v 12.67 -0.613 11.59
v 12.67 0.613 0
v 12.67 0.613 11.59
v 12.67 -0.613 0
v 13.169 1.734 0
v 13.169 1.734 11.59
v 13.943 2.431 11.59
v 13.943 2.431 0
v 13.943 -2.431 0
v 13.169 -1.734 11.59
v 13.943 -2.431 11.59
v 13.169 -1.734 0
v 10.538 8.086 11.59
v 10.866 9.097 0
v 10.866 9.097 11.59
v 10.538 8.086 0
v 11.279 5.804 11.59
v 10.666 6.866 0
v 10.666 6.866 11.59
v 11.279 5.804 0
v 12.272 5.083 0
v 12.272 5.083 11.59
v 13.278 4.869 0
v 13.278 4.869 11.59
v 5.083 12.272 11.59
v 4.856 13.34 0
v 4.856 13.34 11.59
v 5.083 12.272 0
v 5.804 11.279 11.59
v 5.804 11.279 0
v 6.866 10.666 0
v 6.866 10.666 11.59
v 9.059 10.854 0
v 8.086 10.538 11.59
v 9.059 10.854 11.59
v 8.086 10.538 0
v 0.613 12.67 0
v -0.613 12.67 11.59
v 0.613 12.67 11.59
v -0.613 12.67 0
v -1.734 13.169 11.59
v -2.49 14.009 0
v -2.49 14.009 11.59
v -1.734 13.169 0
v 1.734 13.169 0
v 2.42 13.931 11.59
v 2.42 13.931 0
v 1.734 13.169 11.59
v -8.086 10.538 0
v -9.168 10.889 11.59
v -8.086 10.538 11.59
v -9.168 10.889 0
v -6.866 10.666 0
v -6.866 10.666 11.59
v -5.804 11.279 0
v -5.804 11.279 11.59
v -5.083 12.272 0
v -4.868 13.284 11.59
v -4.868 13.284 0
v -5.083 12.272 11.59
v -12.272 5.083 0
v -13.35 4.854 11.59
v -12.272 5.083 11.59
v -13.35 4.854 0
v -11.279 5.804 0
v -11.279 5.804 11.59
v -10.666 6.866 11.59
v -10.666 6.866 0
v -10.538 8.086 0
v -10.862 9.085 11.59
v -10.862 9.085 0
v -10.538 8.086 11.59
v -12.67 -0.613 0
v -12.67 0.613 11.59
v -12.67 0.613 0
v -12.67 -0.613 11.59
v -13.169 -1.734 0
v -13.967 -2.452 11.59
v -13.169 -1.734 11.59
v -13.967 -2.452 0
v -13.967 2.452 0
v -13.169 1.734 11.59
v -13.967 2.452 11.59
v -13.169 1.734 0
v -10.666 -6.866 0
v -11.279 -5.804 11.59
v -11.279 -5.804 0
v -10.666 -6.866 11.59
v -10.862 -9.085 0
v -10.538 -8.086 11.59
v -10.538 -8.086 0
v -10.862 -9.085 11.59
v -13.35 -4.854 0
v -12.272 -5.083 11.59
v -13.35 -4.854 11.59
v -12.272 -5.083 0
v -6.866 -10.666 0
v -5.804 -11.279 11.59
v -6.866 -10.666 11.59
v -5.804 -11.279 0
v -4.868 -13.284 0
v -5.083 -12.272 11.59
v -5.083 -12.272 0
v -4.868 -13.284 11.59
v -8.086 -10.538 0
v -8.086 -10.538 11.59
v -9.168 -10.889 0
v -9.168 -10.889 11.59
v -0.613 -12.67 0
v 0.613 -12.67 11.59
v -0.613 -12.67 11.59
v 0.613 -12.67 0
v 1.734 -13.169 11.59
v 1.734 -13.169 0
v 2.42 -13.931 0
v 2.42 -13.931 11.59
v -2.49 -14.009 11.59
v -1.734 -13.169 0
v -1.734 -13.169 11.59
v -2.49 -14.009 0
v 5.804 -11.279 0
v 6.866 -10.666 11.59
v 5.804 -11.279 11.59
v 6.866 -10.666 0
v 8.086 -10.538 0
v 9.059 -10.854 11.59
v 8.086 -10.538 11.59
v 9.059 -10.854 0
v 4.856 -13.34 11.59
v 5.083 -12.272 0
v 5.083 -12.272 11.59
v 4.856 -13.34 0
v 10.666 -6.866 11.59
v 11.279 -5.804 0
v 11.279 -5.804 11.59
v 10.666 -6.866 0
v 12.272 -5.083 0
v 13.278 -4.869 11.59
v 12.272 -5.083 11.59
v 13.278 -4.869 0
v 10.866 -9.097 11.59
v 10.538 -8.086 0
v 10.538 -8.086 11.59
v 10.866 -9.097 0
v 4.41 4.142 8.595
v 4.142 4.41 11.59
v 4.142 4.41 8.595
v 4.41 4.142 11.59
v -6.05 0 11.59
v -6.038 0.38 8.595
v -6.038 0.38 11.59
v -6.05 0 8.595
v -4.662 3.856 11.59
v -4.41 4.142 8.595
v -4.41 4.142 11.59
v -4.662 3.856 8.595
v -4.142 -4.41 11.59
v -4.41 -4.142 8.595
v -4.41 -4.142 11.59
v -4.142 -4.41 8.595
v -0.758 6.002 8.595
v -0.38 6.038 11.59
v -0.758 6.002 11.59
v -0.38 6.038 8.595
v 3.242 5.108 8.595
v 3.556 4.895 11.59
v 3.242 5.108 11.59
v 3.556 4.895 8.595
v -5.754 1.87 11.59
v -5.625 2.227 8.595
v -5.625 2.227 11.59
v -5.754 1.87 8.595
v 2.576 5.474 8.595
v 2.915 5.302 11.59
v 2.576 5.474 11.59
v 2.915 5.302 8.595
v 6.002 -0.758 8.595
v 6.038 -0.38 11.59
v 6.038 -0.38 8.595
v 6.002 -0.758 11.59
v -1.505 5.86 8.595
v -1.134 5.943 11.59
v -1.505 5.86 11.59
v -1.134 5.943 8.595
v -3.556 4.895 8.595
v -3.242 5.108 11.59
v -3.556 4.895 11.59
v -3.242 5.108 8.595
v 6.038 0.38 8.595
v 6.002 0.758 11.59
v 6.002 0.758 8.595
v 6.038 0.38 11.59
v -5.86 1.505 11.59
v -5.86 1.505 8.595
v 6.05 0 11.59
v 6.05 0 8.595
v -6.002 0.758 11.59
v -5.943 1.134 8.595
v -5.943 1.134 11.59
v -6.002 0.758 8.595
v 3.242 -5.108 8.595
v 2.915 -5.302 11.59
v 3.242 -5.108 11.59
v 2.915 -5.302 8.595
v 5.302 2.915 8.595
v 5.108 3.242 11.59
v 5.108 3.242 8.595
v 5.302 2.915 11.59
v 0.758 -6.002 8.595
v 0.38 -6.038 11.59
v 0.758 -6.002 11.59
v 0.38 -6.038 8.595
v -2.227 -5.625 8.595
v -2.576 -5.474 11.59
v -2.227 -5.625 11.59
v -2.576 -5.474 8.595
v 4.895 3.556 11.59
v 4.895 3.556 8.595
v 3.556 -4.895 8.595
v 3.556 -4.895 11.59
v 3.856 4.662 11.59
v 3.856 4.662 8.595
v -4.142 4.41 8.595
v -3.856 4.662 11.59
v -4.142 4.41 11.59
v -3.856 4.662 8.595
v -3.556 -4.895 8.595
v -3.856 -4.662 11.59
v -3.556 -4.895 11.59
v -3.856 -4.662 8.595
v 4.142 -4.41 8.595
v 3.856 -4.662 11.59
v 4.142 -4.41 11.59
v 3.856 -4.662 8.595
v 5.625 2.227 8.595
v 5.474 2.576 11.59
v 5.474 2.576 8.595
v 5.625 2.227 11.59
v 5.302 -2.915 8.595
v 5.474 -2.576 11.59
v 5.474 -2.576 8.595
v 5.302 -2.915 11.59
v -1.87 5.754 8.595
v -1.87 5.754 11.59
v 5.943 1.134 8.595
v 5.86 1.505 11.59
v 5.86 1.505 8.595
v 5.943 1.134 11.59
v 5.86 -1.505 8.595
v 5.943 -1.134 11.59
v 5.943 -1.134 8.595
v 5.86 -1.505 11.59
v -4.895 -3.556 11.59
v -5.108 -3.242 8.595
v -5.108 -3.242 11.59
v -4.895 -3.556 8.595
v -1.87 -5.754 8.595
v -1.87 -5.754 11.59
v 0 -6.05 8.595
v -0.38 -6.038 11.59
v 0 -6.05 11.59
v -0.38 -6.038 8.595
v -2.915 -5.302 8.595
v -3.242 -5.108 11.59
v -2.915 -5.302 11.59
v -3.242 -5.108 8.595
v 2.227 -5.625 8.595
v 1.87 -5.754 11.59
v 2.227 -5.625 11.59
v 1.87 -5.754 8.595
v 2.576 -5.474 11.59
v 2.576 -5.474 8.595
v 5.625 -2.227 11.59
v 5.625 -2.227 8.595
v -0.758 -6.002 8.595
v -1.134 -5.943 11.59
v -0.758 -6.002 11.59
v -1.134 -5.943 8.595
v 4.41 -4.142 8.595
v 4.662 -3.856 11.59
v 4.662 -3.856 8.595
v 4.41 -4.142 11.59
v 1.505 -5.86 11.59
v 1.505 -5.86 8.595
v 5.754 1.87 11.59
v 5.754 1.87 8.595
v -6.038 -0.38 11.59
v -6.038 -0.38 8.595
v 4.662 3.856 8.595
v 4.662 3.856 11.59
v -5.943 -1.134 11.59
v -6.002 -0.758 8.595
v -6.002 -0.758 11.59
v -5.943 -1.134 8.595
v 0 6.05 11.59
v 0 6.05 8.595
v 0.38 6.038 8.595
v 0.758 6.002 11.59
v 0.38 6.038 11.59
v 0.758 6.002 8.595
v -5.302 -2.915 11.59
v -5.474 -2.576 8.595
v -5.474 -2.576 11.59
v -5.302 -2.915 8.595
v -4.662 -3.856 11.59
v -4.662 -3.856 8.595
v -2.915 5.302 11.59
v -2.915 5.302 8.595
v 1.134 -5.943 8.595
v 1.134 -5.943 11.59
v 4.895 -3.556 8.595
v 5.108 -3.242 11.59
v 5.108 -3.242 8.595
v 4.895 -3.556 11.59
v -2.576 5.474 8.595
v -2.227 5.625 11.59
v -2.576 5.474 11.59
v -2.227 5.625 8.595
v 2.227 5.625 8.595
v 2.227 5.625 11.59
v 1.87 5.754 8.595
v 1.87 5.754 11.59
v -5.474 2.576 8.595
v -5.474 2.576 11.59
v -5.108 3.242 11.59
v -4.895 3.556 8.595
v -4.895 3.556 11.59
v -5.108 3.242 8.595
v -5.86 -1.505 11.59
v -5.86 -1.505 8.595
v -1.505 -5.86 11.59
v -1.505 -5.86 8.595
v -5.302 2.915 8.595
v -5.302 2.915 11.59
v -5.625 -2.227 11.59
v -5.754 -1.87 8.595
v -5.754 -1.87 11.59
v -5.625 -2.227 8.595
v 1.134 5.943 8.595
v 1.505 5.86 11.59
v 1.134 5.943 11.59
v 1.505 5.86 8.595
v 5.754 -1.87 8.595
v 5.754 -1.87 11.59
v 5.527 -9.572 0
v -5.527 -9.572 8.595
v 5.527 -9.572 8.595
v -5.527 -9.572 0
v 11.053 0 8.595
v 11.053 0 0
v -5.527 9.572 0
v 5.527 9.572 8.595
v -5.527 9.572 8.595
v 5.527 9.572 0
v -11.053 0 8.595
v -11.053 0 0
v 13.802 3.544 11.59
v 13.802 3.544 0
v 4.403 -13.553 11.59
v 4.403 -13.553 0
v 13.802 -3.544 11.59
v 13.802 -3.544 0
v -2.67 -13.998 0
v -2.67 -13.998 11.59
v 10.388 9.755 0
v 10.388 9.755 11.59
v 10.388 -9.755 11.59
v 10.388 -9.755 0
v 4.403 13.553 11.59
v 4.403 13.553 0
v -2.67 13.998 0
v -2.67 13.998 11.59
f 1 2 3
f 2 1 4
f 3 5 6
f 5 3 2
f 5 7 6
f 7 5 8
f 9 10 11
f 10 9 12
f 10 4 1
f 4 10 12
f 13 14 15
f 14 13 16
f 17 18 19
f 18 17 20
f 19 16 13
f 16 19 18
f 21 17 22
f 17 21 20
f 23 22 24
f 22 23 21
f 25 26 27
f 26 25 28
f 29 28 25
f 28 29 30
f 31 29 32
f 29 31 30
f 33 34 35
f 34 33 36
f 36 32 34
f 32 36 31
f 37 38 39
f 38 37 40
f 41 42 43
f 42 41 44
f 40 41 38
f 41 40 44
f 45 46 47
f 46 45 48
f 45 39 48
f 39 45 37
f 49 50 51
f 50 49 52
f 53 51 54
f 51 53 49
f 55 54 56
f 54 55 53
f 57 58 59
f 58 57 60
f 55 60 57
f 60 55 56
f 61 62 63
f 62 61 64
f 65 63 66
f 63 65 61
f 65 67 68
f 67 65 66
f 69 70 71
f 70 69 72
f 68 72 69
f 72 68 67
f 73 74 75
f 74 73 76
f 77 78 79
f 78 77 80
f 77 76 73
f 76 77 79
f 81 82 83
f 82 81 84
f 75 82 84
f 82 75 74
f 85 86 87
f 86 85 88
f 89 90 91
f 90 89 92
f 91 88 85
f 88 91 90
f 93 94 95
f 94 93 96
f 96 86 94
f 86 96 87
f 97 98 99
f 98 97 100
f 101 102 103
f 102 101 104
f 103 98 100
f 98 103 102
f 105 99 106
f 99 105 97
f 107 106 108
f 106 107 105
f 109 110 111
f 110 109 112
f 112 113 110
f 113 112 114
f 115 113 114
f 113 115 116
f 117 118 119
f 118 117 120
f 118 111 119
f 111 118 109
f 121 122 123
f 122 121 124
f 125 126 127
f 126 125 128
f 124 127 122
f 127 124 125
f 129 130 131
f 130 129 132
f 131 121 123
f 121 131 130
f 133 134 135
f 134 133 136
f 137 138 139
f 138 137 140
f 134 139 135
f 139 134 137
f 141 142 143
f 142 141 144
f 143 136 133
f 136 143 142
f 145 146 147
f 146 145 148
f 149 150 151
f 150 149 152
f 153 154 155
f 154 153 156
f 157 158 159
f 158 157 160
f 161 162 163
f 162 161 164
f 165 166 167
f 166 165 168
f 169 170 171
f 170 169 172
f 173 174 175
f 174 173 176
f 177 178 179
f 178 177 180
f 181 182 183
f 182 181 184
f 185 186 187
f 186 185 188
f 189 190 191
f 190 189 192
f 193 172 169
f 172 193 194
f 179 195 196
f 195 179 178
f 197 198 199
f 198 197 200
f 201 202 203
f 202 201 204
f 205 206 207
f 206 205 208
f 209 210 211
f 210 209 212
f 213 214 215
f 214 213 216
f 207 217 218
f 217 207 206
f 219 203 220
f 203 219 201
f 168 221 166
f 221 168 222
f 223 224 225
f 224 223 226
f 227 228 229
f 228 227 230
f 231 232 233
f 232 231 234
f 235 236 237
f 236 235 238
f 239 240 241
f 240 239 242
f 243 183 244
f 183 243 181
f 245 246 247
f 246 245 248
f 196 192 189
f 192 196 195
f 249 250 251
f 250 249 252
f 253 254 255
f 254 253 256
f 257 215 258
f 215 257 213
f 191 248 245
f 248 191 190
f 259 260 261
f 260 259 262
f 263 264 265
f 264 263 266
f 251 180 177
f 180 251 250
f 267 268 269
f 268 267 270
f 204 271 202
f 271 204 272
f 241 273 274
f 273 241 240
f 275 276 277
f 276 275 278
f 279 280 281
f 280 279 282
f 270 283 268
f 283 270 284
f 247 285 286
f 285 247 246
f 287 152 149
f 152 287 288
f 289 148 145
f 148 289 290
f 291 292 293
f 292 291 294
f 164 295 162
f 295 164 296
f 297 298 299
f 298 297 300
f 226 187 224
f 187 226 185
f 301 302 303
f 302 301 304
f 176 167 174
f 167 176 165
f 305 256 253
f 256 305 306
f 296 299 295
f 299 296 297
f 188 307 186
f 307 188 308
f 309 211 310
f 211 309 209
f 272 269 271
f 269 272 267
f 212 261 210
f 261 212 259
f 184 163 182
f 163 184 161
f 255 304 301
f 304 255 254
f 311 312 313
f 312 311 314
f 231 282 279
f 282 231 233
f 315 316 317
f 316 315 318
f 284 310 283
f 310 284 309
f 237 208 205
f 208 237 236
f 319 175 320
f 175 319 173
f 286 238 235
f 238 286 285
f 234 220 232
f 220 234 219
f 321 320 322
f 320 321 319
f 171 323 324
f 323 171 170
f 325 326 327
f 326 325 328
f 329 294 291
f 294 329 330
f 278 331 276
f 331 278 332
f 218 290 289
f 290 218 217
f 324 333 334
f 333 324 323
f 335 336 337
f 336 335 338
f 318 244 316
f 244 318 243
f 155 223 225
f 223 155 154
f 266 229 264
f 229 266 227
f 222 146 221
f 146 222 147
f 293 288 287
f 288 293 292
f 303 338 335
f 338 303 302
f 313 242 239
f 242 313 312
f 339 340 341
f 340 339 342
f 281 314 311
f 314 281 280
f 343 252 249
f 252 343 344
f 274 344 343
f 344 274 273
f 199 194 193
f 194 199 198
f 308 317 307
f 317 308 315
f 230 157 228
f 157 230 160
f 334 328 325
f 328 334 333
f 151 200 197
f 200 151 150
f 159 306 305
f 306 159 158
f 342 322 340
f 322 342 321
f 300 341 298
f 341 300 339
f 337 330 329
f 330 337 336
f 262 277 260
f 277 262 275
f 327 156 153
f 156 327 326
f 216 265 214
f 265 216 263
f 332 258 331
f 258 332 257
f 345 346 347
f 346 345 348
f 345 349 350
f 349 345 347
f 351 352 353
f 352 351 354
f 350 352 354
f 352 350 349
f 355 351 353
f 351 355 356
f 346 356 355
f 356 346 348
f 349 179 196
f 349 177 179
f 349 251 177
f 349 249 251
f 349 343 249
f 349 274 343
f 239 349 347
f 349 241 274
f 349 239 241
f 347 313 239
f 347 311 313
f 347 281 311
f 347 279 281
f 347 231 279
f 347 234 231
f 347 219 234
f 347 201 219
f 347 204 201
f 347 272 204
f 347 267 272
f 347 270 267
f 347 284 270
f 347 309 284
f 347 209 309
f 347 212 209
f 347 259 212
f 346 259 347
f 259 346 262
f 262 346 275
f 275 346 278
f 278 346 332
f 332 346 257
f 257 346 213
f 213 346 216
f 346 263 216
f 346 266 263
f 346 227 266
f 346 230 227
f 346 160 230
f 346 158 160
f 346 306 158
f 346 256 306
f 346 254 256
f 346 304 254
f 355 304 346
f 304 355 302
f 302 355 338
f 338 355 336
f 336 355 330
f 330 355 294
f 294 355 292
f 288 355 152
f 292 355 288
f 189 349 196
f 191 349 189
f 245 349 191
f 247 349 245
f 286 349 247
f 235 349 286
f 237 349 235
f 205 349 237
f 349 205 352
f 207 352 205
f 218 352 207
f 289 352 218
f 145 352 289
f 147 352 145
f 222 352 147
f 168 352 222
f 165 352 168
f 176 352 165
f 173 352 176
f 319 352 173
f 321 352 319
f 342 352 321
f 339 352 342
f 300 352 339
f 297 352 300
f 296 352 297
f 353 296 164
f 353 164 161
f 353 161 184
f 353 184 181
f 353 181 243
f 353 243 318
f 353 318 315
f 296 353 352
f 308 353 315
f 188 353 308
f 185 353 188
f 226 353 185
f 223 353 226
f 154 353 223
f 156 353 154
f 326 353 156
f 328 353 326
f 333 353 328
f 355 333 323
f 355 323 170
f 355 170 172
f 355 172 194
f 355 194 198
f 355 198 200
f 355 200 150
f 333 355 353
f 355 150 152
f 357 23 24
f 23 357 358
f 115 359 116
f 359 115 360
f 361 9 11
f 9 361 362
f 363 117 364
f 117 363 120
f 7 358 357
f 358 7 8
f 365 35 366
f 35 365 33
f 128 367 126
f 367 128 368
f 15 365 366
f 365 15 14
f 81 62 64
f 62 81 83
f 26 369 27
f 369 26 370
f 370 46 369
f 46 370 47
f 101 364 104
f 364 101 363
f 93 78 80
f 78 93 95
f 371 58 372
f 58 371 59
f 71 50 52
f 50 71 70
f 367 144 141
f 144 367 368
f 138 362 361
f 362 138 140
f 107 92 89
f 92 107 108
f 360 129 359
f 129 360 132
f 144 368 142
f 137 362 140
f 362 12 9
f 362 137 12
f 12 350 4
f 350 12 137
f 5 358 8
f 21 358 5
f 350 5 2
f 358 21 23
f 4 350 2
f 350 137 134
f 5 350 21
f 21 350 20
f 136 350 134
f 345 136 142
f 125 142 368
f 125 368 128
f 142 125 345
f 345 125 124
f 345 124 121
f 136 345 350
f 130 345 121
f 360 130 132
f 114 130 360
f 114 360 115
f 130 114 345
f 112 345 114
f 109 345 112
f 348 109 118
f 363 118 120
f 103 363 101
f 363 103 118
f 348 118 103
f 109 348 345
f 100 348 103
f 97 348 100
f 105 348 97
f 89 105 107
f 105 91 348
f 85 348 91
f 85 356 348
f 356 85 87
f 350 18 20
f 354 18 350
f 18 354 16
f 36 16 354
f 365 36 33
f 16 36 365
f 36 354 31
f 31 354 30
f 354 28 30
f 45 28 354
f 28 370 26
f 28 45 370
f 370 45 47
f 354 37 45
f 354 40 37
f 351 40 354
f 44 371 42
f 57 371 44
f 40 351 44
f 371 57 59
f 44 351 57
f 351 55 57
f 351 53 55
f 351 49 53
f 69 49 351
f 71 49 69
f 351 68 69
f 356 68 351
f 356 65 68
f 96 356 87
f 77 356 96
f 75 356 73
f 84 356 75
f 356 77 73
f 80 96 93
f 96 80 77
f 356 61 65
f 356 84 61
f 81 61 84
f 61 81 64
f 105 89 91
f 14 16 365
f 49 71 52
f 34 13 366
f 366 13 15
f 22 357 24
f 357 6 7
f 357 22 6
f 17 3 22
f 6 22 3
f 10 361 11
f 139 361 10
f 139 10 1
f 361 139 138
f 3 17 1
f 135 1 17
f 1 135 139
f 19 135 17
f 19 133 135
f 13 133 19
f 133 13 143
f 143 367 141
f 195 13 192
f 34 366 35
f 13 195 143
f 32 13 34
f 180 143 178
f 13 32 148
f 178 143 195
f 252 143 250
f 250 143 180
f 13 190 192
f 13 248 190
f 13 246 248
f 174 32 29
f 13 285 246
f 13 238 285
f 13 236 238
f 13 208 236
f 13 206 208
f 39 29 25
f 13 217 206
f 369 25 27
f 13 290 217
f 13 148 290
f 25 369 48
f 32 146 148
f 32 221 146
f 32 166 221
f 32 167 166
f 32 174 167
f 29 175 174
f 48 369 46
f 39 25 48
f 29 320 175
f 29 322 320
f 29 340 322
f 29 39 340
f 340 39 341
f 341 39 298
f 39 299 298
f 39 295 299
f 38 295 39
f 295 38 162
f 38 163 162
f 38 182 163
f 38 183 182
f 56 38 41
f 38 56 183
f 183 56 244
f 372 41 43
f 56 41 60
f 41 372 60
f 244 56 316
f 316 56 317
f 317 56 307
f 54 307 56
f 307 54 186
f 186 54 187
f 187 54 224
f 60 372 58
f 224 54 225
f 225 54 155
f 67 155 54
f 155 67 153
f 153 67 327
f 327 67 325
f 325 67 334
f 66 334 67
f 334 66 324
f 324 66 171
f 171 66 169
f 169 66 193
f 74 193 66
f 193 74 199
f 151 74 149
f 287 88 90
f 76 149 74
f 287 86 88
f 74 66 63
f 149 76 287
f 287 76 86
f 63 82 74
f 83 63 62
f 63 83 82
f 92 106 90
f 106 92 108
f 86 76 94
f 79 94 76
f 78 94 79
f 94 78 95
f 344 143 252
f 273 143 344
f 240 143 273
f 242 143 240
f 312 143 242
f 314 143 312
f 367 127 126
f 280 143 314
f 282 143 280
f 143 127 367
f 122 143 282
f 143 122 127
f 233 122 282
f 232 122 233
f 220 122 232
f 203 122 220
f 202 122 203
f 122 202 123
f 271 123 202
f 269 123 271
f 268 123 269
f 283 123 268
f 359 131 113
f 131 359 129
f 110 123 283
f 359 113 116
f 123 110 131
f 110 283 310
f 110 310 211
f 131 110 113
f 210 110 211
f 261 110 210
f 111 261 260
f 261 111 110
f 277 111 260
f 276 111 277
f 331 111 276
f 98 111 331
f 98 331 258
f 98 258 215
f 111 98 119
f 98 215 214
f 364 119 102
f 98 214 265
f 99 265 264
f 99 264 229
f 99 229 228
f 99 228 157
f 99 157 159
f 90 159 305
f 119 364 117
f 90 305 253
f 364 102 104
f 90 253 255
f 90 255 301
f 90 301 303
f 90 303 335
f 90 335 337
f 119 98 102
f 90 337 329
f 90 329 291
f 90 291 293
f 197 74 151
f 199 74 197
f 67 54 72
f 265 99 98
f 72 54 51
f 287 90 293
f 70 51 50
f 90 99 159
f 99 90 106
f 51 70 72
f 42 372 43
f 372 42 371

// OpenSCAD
// https://www.thingiverse.com/thing:678913/files

$fn = $preview ? 15 : 100;
EPSILON = 0.01;
TOLERANCE = 0.3;
HEX_FACTOR = 1.155;

// Knurled hex nut holder
// Glyn Cowles Feb 2015
BOLT_THREAD_DIAMETER = 11.8;
BOLT_HOLE_TOLERANCE = 0.5;

// Total diameter of knob
knob_diameter = 28;
// Nut should stick out ~1mm so the metal is providing the force
nut_height = 9.8 - 1.2;
lid_height = 3;
height = nut_height + lid_height;

// Nut diameter (flat to flat)
nut_diameter = 18.88;
// Number of knurls
knurls = 12;

difference() {
  cylinder(h = height - EPSILON,
           r = knob_diameter / 2 + BOLT_HOLE_TOLERANCE / 2, $fn = 25);
  translate([ 0, 0, -EPSILON / 2 ]) {
    cylinder(h = height + EPSILON,
             r = BOLT_THREAD_DIAMETER / 2 + TOLERANCE / 2);

    translate([ 0, 0, -lid_height ])
        cylinder(h = height,
                 r = (nut_diameter / 2 * HEX_FACTOR) + TOLERANCE / 2, $fn = 6);
    for (r = [0:360 / knurls:360]) {
      rotate([ 0, 0, r ]) translate([ knob_diameter / 1.8, 0, 0 ]) cylinder(
          h = height, r = (knob_diameter / 5 + TOLERANCE) / 2, $fn = 15);
    }
  }
}
